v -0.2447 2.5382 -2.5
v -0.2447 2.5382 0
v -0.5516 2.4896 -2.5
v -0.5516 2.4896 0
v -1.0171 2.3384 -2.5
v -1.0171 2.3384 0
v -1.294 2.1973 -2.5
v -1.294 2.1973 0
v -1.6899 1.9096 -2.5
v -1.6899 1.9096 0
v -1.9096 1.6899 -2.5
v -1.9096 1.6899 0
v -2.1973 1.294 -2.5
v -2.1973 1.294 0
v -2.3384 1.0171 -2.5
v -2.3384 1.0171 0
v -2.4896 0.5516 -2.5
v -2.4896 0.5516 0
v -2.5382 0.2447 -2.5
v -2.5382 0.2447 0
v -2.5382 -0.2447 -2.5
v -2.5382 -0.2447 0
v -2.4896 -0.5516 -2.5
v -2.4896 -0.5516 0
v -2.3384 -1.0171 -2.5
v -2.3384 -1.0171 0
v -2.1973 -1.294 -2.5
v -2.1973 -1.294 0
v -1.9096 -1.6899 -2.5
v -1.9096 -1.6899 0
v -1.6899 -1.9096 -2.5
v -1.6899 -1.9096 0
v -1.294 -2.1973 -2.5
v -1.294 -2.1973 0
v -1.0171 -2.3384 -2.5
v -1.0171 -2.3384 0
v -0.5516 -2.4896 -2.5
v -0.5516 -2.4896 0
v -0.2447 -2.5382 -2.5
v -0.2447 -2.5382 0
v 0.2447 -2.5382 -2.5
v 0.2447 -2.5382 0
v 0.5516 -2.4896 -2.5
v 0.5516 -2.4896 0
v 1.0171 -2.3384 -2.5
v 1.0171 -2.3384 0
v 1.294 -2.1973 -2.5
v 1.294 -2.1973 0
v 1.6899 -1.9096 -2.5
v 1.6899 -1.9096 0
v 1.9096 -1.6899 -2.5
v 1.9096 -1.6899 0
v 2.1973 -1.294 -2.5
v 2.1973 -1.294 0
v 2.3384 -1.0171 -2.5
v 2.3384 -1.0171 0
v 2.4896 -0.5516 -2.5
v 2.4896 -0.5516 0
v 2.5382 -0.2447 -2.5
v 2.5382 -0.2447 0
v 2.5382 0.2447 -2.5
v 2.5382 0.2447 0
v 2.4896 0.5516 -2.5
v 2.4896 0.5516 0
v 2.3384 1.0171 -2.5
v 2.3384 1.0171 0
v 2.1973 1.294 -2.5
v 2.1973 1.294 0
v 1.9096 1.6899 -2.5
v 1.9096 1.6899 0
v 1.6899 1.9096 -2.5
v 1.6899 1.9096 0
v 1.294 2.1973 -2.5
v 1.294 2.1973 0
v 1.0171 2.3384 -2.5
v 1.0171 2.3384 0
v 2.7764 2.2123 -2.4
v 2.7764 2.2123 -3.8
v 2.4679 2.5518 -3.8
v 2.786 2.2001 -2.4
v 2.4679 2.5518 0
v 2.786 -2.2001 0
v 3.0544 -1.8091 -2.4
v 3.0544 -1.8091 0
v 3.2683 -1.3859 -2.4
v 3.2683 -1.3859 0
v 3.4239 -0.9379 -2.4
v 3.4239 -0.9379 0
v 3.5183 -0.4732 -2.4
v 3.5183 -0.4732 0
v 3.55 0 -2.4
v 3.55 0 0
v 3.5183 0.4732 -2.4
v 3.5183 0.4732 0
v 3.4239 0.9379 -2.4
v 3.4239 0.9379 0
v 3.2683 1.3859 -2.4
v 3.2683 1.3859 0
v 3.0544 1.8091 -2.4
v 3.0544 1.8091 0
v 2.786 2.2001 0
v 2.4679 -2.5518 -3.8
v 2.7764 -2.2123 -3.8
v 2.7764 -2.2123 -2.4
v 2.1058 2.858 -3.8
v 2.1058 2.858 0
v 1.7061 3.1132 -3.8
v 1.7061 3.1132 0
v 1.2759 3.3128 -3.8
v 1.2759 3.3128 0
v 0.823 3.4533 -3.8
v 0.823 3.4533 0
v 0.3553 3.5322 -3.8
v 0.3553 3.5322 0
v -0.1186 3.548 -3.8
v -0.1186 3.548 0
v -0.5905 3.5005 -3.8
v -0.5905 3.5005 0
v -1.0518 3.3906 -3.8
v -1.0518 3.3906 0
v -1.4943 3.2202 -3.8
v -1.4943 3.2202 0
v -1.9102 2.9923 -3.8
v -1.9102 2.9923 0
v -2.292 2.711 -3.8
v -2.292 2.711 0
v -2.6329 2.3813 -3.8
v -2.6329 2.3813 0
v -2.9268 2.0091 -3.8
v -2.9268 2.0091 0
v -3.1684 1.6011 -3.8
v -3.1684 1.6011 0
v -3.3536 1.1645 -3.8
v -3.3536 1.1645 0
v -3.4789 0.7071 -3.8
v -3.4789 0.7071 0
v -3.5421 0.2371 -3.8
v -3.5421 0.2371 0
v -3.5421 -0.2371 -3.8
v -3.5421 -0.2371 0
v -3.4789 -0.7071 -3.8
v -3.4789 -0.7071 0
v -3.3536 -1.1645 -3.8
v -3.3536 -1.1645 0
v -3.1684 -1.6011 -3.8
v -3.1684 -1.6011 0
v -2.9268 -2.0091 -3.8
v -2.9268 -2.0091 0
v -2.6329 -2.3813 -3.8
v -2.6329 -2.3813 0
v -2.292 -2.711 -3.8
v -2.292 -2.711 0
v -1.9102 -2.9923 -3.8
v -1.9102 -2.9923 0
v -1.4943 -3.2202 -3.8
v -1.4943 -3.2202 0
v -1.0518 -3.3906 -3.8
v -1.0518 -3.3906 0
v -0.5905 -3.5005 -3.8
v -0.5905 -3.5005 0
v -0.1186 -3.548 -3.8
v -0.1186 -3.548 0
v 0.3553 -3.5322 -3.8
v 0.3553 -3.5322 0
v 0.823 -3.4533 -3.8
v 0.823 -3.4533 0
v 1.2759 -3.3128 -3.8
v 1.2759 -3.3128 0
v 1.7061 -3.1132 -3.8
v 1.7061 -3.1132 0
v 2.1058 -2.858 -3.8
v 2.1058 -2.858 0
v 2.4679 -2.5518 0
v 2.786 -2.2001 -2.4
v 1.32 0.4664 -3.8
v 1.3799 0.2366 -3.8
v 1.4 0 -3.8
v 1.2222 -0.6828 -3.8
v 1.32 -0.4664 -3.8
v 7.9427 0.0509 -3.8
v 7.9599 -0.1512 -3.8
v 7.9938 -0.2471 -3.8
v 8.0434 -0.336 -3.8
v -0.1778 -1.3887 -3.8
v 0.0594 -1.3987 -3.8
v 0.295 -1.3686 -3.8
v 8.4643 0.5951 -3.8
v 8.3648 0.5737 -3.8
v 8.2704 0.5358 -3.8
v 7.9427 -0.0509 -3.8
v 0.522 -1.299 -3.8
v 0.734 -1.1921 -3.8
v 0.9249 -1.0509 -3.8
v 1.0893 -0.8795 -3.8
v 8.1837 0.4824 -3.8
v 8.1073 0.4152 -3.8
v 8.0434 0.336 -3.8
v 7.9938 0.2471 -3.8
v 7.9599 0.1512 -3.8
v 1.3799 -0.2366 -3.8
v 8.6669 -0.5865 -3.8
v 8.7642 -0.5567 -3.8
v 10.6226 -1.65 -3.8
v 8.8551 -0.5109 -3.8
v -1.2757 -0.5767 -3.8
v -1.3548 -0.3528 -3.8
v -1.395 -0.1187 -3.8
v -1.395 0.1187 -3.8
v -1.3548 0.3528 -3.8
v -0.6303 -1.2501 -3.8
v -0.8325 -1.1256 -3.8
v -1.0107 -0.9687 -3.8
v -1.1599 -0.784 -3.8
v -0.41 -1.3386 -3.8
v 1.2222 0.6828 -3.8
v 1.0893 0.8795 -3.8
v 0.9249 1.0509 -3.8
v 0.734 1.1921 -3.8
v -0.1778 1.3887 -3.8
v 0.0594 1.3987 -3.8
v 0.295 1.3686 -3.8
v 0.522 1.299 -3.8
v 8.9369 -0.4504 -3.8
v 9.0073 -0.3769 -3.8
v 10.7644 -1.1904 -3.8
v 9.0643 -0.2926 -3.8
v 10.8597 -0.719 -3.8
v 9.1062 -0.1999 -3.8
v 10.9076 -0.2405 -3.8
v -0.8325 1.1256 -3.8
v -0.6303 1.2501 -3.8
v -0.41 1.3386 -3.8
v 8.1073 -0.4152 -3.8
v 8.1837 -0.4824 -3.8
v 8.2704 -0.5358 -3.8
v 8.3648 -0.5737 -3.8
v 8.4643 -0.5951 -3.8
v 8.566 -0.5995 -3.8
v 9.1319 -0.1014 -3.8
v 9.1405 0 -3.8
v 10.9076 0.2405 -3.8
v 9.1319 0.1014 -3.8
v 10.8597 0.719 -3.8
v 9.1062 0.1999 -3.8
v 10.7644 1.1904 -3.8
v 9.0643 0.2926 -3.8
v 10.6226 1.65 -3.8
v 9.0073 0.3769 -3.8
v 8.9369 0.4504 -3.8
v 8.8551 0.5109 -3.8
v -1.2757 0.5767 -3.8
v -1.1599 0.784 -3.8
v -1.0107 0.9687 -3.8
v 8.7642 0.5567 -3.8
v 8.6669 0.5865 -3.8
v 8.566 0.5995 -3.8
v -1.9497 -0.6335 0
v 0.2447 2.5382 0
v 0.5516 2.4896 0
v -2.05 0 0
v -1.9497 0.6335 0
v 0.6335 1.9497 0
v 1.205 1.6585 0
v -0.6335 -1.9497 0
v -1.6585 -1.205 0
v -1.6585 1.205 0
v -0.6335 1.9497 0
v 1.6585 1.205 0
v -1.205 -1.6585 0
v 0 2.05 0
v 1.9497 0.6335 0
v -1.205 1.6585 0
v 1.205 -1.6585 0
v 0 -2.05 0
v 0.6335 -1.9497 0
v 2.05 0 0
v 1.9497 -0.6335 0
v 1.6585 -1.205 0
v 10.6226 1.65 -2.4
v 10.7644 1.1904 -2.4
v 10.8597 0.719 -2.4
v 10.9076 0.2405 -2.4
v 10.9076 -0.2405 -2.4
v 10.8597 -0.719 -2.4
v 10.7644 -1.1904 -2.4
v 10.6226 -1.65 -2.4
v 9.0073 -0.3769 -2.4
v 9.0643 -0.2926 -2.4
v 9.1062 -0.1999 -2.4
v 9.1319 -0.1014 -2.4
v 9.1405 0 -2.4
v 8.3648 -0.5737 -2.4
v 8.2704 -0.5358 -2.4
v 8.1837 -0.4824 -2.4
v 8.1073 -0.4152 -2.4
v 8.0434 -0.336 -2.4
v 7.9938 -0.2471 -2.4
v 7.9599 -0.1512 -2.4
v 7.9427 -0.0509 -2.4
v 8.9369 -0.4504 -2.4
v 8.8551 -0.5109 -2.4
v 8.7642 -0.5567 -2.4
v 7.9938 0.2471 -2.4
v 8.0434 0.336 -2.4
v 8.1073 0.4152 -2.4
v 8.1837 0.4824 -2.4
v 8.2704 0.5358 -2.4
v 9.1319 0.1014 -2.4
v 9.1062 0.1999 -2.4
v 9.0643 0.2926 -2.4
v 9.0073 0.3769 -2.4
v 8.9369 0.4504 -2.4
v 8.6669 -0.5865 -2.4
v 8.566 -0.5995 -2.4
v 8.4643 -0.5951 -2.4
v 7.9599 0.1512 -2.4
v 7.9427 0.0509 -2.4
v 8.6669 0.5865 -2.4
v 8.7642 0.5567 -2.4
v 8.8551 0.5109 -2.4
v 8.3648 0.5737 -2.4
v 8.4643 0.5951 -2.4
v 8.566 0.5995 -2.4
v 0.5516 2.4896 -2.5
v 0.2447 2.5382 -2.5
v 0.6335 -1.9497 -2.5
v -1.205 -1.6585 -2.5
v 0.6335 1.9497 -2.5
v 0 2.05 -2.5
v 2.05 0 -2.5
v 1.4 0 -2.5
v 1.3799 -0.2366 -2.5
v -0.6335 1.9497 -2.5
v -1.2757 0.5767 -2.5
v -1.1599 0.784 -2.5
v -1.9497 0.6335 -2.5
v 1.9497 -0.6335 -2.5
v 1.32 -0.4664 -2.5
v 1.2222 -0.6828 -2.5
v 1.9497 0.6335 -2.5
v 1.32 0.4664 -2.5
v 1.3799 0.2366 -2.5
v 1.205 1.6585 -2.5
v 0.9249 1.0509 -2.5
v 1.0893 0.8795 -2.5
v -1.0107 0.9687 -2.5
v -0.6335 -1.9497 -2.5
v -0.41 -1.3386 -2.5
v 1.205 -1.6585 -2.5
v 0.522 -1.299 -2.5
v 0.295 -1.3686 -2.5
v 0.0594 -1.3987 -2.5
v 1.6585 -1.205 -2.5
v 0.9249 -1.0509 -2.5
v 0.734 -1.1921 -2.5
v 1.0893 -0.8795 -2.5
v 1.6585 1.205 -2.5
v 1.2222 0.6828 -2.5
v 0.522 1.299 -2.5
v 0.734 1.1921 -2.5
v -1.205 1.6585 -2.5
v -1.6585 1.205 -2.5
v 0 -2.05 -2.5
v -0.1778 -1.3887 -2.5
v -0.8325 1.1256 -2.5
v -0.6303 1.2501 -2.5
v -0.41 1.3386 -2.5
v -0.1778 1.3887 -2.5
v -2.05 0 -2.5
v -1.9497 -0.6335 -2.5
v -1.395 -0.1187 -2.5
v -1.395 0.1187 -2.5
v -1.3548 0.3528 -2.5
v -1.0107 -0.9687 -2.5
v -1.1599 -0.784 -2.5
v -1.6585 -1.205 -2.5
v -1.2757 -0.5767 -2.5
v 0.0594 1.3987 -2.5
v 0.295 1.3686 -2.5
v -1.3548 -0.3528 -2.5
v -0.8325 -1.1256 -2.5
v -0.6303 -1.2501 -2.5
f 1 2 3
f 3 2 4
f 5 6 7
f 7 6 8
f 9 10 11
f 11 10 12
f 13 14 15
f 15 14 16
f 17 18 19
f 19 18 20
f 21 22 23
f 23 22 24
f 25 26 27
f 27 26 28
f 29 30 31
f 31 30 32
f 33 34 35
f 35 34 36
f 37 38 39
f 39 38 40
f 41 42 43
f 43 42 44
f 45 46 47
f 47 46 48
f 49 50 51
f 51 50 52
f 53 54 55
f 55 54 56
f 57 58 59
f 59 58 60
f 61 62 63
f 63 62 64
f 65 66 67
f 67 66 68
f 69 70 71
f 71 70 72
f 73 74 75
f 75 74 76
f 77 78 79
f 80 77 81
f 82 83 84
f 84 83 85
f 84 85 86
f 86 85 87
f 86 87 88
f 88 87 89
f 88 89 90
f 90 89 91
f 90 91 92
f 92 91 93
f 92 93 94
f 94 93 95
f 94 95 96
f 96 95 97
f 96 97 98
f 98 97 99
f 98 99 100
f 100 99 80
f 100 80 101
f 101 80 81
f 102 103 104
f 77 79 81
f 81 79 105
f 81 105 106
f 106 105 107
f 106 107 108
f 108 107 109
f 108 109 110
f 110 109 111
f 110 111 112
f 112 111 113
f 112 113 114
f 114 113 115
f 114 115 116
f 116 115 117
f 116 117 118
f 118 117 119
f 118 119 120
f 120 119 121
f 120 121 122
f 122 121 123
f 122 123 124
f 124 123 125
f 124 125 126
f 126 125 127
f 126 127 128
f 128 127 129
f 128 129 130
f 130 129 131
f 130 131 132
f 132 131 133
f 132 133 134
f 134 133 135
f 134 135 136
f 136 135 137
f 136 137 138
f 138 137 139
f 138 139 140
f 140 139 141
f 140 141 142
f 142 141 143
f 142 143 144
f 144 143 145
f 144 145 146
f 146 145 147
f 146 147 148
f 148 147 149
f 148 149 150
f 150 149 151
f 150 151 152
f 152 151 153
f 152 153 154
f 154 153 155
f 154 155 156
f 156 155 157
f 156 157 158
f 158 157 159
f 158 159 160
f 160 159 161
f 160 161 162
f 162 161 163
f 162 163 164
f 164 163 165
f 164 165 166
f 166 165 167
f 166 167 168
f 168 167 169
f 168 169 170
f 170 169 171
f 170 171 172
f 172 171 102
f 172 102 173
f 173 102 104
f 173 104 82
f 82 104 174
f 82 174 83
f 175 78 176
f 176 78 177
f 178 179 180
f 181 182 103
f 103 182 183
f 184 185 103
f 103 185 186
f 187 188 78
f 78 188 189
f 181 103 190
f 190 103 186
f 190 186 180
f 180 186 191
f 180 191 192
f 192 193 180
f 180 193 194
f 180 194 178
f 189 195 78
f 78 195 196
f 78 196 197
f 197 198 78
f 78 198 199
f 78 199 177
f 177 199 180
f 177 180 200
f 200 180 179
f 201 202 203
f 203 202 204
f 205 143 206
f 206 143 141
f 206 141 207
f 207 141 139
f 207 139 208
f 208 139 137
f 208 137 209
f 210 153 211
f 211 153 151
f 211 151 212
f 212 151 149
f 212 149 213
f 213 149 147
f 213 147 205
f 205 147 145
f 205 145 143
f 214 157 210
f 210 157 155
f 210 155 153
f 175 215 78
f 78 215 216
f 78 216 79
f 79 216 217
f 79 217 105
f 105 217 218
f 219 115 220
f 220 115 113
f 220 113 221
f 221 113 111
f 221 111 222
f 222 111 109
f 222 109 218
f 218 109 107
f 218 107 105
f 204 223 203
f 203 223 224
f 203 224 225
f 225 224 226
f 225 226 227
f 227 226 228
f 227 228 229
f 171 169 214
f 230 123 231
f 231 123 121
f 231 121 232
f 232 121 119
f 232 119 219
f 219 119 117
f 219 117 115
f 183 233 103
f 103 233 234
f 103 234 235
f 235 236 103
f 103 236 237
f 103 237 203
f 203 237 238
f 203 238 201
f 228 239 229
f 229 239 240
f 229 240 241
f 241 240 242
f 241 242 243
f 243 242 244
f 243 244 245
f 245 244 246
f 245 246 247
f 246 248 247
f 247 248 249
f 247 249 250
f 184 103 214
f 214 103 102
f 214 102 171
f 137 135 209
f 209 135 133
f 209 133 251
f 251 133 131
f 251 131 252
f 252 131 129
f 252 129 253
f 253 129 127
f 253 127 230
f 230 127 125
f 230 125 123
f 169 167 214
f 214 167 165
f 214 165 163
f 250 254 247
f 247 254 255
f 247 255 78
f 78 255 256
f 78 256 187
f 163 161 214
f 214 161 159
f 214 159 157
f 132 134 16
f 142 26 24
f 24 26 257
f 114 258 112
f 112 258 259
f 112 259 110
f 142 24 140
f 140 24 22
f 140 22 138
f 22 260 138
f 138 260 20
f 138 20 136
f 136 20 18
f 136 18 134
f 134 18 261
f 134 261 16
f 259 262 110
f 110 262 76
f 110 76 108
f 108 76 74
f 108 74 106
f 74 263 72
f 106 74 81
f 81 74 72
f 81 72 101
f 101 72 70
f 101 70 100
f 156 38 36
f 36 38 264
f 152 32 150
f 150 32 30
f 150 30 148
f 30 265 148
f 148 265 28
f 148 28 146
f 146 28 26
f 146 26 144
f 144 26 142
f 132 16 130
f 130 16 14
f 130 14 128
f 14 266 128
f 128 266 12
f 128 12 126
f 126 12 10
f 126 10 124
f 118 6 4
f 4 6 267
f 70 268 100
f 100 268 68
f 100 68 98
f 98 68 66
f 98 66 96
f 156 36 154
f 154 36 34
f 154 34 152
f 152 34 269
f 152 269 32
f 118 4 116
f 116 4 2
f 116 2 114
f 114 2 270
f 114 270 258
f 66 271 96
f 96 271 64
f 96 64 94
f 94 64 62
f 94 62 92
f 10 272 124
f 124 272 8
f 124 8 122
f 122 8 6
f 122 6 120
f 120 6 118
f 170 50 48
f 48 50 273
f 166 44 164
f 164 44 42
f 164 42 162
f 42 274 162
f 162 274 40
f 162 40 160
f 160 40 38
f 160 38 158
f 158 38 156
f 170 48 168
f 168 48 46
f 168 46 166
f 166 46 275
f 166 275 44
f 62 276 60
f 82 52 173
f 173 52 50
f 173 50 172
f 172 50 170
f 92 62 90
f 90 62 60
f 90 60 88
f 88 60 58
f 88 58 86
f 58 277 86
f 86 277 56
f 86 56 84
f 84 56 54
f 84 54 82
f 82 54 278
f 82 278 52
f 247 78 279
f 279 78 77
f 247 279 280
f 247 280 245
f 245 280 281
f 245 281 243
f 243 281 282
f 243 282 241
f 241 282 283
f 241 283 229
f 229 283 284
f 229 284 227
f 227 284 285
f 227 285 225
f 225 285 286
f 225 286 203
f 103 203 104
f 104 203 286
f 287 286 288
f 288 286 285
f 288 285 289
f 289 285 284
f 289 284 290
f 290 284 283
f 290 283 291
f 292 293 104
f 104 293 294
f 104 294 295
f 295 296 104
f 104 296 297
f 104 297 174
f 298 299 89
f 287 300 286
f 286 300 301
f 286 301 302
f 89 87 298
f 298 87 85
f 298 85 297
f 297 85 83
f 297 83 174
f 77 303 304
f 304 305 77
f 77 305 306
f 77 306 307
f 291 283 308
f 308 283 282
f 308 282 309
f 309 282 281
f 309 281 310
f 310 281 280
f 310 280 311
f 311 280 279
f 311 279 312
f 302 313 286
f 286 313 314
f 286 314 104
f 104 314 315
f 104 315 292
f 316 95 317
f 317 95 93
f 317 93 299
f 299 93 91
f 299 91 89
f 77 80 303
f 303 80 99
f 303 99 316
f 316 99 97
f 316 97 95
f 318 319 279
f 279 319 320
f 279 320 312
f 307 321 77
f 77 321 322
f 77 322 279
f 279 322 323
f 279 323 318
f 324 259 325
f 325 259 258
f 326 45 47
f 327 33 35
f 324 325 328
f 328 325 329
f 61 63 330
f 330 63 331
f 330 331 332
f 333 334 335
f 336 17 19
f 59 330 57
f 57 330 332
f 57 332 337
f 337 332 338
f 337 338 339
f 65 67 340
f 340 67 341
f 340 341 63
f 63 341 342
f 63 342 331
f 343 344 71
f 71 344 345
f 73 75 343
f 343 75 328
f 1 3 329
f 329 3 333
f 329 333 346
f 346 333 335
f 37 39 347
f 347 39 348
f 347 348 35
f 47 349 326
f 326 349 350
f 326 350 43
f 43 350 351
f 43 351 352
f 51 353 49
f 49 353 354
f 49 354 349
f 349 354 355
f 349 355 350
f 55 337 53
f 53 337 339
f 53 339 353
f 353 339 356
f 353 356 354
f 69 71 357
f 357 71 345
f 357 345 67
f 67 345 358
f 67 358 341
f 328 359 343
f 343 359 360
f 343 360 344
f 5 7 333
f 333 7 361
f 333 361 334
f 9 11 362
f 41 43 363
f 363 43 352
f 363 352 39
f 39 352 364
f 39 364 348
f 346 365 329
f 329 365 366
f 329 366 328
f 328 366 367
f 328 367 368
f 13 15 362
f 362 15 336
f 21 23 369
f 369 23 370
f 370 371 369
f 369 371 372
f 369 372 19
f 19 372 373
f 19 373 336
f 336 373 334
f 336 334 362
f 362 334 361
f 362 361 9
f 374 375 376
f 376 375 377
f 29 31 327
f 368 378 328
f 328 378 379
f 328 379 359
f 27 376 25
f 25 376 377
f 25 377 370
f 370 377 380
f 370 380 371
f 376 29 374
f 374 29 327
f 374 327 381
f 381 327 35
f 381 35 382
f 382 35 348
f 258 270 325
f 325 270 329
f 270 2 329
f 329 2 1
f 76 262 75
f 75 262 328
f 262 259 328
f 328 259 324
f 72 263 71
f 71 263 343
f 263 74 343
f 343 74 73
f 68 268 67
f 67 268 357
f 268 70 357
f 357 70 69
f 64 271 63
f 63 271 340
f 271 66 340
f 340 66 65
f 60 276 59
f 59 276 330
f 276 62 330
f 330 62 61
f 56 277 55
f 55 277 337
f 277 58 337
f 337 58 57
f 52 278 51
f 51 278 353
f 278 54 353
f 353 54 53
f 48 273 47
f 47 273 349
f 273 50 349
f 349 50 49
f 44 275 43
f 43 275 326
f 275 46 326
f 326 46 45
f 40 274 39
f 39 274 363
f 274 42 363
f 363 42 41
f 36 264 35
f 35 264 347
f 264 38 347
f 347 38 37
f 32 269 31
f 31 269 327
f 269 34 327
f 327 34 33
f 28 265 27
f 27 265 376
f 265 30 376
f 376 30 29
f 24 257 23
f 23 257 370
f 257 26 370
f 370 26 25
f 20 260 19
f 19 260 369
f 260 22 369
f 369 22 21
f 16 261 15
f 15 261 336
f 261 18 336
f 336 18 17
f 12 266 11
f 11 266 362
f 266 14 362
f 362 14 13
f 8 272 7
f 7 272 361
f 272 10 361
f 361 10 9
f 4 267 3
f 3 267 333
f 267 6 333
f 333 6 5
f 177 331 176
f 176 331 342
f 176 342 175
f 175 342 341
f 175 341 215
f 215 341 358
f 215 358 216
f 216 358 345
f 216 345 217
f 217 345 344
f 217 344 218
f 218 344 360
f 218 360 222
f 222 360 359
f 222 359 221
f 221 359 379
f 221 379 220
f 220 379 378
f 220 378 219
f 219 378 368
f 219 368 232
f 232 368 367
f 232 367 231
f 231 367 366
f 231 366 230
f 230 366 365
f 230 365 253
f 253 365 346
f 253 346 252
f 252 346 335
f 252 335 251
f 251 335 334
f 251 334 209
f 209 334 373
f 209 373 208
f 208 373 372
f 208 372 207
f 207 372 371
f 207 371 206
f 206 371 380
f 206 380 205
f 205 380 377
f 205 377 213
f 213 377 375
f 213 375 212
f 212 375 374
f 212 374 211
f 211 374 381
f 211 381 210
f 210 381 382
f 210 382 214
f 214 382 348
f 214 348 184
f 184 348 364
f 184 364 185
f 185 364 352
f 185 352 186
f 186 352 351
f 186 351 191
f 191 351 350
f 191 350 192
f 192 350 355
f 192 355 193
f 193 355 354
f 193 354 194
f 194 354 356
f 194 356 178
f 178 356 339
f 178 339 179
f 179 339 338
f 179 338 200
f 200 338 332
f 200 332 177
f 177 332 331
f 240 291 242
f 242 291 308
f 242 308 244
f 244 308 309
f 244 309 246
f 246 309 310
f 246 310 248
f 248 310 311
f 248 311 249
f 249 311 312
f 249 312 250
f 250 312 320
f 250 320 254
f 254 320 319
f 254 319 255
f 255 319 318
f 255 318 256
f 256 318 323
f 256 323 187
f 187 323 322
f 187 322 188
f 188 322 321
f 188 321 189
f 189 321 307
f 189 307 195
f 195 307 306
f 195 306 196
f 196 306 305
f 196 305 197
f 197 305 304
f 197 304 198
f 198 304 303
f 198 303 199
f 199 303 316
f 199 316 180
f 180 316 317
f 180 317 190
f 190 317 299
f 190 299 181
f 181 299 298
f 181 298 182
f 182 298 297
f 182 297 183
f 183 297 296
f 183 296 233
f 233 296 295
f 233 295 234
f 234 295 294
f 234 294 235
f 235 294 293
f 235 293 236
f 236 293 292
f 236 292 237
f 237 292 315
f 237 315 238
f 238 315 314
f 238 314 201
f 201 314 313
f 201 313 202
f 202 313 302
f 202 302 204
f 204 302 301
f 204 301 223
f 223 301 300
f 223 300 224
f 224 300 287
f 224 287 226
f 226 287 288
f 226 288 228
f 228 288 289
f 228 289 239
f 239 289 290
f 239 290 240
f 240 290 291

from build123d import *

# Parameters (mm, degrees)
SKETCH2_R           = 3.55
BOSS_EXTRUDE1_DEPTH = 3.8
BOSS_EXTRUDE2_DEPTH = 1.4
SKETCH5_R           = 2.549999919
CUT_EXTRUDE1_DEPTH  = 2.5
BOSS_EXTRUDE3_DEPTH = 2.5
SKETCH6_R           = 1.4
CUT_EXTRUDE2_DEPTH  = 12.745554295
SKETCH7_R           = 0.6
CUT_EXTRUDE3_DEPTH  = 12.724676785


with BuildPart() as part:
    # Sketch2 → Boss-Extrude1 (new body)
    with BuildSketch(Plane.XY):
        Circle(SKETCH2_R)
    extrude(amount=-BOSS_EXTRUDE1_DEPTH)

    # Sketch4 → Boss-Extrude2 (add)
    with BuildSketch(Plane.XY.offset(-2.4)):
        with BuildLine():
            Line((2.776387215, 2.212277889), (10.622617722, 1.649999976))
            ThreePointArc((10.622617722, 1.649999976), (10.913548722, 0), (10.622617722, -1.649999976))
            Line((10.622617722, -1.649999976), (2.776387215, -2.212277889))
            ThreePointArc((2.776387215, -2.212277889), (3.549999952, 0), (2.776387215, 2.212277889))
        make_face()
    extrude(amount=-BOSS_EXTRUDE2_DEPTH)

    # Sketch5 → Cut-Extrude1 (cut)
    with BuildSketch(Plane.XY):
        Circle(SKETCH5_R)
    extrude(amount=-CUT_EXTRUDE1_DEPTH, mode=Mode.SUBTRACT)

    # Sketch3 → Boss-Extrude3 (add)
    with BuildSketch(Plane.XY):
        with BuildLine():
            Line((-0.244697916, 2.538232164), (0, 2.049999952))
            Line((0, 2.049999952), (0.244697916, 2.538232164))
            ThreePointArc((0.244697916, 2.538232164), (0, 2.549999919), (-0.244697916, 2.538232164))
        make_face()
        with BuildLine():
            Line((0.551635326, 2.489618054), (0.633484824, 1.949665813))
            Line((0.633484824, 1.949665813), (1.017078422, 2.338386424))
            ThreePointArc((1.017078422, 2.338386424), (0.787993311, 2.42519404), (0.551635326, 2.489618054))
        make_face()
        with BuildLine():
            Line((1.29397066, 2.197302783), (1.204959739, 1.6584848))
            Line((1.204959739, 1.6584848), (1.689900206, 1.90964313))
            ThreePointArc((1.689900206, 1.90964313), (1.498852346, 2.06299327), (1.29397066, 2.197302783))
        make_face()
        with BuildLine():
            Line((1.90964313, 1.689900206), (1.6584848, 1.204959739))
            Line((1.6584848, 1.204959739), (2.197302783, 1.29397066))
            ThreePointArc((2.197302783, 1.29397066), (2.06299327, 1.498852346), (1.90964313, 1.689900206))
        make_face()
        with BuildLine():
            Line((2.338386424, 1.017078422), (1.949665813, 0.633484824))
            Line((1.949665813, 0.633484824), (2.489618054, 0.551635326))
            ThreePointArc((2.489618054, 0.551635326), (2.42519404, 0.787993311), (2.338386424, 1.017078422))
        make_face()
        with BuildLine():
            Line((2.538232164, 0.244697916), (2.049999952, 0))
            Line((2.049999952, 0), (2.538232164, -0.244697916))
            ThreePointArc((2.538232164, -0.244697916), (2.549999919, 0), (2.538232164, 0.244697916))
        make_face()
        with BuildLine():
            Line((2.489618054, -0.551635326), (1.949665813, -0.633484824))
            Line((1.949665813, -0.633484824), (2.338386424, -1.017078422))
            ThreePointArc((2.338386424, -1.017078422), (2.42519404, -0.787993311), (2.489618054, -0.551635326))
        make_face()
        with BuildLine():
            Line((2.197302783, -1.29397066), (1.6584848, -1.204959739))
            Line((1.6584848, -1.204959739), (1.90964313, -1.689900206))
            ThreePointArc((1.90964313, -1.689900206), (2.06299327, -1.498852346), (2.197302783, -1.29397066))
        make_face()
        with BuildLine():
            Line((1.689900206, -1.90964313), (1.204959739, -1.6584848))
            Line((1.204959739, -1.6584848), (1.29397066, -2.197302783))
            ThreePointArc((1.29397066, -2.197302783), (1.498852346, -2.06299327), (1.689900206, -1.90964313))
        make_face()
        with BuildLine():
            Line((1.017078422, -2.338386424), (0.633484824, -1.949665813))
            Line((0.633484824, -1.949665813), (0.551635326, -2.489618054))
            ThreePointArc((0.551635326, -2.489618054), (0.787993311, -2.42519404), (1.017078422, -2.338386424))
        make_face()
        with BuildLine():
            Line((0.244697916, -2.538232164), (0, -2.049999952))
            Line((0, -2.049999952), (-0.244697916, -2.538232164))
            ThreePointArc((-0.244697916, -2.538232164), (0, -2.549999919), (0.244697916, -2.538232164))
        make_face()
        with BuildLine():
            Line((-0.551635326, -2.489618054), (-0.633484824, -1.949665813))
            Line((-0.633484824, -1.949665813), (-1.017078422, -2.338386424))
            ThreePointArc((-1.017078422, -2.338386424), (-0.787993311, -2.42519404), (-0.551635326, -2.489618054))
        make_face()
        with BuildLine():
            Line((-1.29397066, -2.197302783), (-1.204959739, -1.6584848))
            Line((-1.204959739, -1.6584848), (-1.689900206, -1.90964313))
            ThreePointArc((-1.689900206, -1.90964313), (-1.498852346, -2.06299327), (-1.29397066, -2.197302783))
        make_face()
        with BuildLine():
            Line((-1.90964313, -1.689900206), (-1.6584848, -1.204959739))
            Line((-1.6584848, -1.204959739), (-2.197302783, -1.29397066))
            ThreePointArc((-2.197302783, -1.29397066), (-2.06299327, -1.498852346), (-1.90964313, -1.689900206))
        make_face()
        with BuildLine():
            Line((-2.338386424, -1.017078422), (-1.949665813, -0.633484824))
            Line((-1.949665813, -0.633484824), (-2.489618054, -0.551635326))
            ThreePointArc((-2.489618054, -0.551635326), (-2.42519404, -0.787993311), (-2.338386424, -1.017078422))
        make_face()
        with BuildLine():
            Line((-2.538232164, -0.244697916), (-2.049999952, 0))
            Line((-2.049999952, 0), (-2.538232164, 0.244697916))
            ThreePointArc((-2.538232164, 0.244697916), (-2.549999919, 0), (-2.538232164, -0.244697916))
        make_face()
        with BuildLine():
            Line((-2.489618054, 0.551635326), (-1.949665813, 0.633484824))
            Line((-1.949665813, 0.633484824), (-2.338386424, 1.017078422))
            ThreePointArc((-2.338386424, 1.017078422), (-2.42519404, 0.787993311), (-2.489618054, 0.551635326))
        make_face()
        with BuildLine():
            Line((-2.197302783, 1.29397066), (-1.6584848, 1.204959739))
            Line((-1.6584848, 1.204959739), (-1.90964313, 1.689900206))
            ThreePointArc((-1.90964313, 1.689900206), (-2.06299327, 1.498852346), (-2.197302783, 1.29397066))
        make_face()
        with BuildLine():
            Line((-1.689900206, 1.90964313), (-1.204959739, 1.6584848))
            Line((-1.204959739, 1.6584848), (-1.29397066, 2.197302783))
            ThreePointArc((-1.29397066, 2.197302783), (-1.498852346, 2.06299327), (-1.689900206, 1.90964313))
        make_face()
        with BuildLine():
            Line((-1.017078422, 2.338386424), (-0.633484824, 1.949665813))
            Line((-0.633484824, 1.949665813), (-0.551635326, 2.489618054))
            ThreePointArc((-0.551635326, 2.489618054), (-0.787993311, 2.42519404), (-1.017078422, 2.338386424))
        make_face()
    extrude(amount=-BOSS_EXTRUDE3_DEPTH)

    # Sketch6 → Cut-Extrude2 (cut, through all)
    with BuildSketch(Plane.XY.offset(-2.5)):
        Circle(SKETCH6_R)
    extrude(amount=-CUT_EXTRUDE2_DEPTH, mode=Mode.SUBTRACT)

    # Sketch7 → Cut-Extrude3 (cut, through all)
    with BuildSketch(Plane.XY.offset(-2.4)):
        with Locations((8.5405208, 0)):
            Circle(SKETCH7_R)
    extrude(amount=-CUT_EXTRUDE3_DEPTH, mode=Mode.SUBTRACT)


solid = part.part
